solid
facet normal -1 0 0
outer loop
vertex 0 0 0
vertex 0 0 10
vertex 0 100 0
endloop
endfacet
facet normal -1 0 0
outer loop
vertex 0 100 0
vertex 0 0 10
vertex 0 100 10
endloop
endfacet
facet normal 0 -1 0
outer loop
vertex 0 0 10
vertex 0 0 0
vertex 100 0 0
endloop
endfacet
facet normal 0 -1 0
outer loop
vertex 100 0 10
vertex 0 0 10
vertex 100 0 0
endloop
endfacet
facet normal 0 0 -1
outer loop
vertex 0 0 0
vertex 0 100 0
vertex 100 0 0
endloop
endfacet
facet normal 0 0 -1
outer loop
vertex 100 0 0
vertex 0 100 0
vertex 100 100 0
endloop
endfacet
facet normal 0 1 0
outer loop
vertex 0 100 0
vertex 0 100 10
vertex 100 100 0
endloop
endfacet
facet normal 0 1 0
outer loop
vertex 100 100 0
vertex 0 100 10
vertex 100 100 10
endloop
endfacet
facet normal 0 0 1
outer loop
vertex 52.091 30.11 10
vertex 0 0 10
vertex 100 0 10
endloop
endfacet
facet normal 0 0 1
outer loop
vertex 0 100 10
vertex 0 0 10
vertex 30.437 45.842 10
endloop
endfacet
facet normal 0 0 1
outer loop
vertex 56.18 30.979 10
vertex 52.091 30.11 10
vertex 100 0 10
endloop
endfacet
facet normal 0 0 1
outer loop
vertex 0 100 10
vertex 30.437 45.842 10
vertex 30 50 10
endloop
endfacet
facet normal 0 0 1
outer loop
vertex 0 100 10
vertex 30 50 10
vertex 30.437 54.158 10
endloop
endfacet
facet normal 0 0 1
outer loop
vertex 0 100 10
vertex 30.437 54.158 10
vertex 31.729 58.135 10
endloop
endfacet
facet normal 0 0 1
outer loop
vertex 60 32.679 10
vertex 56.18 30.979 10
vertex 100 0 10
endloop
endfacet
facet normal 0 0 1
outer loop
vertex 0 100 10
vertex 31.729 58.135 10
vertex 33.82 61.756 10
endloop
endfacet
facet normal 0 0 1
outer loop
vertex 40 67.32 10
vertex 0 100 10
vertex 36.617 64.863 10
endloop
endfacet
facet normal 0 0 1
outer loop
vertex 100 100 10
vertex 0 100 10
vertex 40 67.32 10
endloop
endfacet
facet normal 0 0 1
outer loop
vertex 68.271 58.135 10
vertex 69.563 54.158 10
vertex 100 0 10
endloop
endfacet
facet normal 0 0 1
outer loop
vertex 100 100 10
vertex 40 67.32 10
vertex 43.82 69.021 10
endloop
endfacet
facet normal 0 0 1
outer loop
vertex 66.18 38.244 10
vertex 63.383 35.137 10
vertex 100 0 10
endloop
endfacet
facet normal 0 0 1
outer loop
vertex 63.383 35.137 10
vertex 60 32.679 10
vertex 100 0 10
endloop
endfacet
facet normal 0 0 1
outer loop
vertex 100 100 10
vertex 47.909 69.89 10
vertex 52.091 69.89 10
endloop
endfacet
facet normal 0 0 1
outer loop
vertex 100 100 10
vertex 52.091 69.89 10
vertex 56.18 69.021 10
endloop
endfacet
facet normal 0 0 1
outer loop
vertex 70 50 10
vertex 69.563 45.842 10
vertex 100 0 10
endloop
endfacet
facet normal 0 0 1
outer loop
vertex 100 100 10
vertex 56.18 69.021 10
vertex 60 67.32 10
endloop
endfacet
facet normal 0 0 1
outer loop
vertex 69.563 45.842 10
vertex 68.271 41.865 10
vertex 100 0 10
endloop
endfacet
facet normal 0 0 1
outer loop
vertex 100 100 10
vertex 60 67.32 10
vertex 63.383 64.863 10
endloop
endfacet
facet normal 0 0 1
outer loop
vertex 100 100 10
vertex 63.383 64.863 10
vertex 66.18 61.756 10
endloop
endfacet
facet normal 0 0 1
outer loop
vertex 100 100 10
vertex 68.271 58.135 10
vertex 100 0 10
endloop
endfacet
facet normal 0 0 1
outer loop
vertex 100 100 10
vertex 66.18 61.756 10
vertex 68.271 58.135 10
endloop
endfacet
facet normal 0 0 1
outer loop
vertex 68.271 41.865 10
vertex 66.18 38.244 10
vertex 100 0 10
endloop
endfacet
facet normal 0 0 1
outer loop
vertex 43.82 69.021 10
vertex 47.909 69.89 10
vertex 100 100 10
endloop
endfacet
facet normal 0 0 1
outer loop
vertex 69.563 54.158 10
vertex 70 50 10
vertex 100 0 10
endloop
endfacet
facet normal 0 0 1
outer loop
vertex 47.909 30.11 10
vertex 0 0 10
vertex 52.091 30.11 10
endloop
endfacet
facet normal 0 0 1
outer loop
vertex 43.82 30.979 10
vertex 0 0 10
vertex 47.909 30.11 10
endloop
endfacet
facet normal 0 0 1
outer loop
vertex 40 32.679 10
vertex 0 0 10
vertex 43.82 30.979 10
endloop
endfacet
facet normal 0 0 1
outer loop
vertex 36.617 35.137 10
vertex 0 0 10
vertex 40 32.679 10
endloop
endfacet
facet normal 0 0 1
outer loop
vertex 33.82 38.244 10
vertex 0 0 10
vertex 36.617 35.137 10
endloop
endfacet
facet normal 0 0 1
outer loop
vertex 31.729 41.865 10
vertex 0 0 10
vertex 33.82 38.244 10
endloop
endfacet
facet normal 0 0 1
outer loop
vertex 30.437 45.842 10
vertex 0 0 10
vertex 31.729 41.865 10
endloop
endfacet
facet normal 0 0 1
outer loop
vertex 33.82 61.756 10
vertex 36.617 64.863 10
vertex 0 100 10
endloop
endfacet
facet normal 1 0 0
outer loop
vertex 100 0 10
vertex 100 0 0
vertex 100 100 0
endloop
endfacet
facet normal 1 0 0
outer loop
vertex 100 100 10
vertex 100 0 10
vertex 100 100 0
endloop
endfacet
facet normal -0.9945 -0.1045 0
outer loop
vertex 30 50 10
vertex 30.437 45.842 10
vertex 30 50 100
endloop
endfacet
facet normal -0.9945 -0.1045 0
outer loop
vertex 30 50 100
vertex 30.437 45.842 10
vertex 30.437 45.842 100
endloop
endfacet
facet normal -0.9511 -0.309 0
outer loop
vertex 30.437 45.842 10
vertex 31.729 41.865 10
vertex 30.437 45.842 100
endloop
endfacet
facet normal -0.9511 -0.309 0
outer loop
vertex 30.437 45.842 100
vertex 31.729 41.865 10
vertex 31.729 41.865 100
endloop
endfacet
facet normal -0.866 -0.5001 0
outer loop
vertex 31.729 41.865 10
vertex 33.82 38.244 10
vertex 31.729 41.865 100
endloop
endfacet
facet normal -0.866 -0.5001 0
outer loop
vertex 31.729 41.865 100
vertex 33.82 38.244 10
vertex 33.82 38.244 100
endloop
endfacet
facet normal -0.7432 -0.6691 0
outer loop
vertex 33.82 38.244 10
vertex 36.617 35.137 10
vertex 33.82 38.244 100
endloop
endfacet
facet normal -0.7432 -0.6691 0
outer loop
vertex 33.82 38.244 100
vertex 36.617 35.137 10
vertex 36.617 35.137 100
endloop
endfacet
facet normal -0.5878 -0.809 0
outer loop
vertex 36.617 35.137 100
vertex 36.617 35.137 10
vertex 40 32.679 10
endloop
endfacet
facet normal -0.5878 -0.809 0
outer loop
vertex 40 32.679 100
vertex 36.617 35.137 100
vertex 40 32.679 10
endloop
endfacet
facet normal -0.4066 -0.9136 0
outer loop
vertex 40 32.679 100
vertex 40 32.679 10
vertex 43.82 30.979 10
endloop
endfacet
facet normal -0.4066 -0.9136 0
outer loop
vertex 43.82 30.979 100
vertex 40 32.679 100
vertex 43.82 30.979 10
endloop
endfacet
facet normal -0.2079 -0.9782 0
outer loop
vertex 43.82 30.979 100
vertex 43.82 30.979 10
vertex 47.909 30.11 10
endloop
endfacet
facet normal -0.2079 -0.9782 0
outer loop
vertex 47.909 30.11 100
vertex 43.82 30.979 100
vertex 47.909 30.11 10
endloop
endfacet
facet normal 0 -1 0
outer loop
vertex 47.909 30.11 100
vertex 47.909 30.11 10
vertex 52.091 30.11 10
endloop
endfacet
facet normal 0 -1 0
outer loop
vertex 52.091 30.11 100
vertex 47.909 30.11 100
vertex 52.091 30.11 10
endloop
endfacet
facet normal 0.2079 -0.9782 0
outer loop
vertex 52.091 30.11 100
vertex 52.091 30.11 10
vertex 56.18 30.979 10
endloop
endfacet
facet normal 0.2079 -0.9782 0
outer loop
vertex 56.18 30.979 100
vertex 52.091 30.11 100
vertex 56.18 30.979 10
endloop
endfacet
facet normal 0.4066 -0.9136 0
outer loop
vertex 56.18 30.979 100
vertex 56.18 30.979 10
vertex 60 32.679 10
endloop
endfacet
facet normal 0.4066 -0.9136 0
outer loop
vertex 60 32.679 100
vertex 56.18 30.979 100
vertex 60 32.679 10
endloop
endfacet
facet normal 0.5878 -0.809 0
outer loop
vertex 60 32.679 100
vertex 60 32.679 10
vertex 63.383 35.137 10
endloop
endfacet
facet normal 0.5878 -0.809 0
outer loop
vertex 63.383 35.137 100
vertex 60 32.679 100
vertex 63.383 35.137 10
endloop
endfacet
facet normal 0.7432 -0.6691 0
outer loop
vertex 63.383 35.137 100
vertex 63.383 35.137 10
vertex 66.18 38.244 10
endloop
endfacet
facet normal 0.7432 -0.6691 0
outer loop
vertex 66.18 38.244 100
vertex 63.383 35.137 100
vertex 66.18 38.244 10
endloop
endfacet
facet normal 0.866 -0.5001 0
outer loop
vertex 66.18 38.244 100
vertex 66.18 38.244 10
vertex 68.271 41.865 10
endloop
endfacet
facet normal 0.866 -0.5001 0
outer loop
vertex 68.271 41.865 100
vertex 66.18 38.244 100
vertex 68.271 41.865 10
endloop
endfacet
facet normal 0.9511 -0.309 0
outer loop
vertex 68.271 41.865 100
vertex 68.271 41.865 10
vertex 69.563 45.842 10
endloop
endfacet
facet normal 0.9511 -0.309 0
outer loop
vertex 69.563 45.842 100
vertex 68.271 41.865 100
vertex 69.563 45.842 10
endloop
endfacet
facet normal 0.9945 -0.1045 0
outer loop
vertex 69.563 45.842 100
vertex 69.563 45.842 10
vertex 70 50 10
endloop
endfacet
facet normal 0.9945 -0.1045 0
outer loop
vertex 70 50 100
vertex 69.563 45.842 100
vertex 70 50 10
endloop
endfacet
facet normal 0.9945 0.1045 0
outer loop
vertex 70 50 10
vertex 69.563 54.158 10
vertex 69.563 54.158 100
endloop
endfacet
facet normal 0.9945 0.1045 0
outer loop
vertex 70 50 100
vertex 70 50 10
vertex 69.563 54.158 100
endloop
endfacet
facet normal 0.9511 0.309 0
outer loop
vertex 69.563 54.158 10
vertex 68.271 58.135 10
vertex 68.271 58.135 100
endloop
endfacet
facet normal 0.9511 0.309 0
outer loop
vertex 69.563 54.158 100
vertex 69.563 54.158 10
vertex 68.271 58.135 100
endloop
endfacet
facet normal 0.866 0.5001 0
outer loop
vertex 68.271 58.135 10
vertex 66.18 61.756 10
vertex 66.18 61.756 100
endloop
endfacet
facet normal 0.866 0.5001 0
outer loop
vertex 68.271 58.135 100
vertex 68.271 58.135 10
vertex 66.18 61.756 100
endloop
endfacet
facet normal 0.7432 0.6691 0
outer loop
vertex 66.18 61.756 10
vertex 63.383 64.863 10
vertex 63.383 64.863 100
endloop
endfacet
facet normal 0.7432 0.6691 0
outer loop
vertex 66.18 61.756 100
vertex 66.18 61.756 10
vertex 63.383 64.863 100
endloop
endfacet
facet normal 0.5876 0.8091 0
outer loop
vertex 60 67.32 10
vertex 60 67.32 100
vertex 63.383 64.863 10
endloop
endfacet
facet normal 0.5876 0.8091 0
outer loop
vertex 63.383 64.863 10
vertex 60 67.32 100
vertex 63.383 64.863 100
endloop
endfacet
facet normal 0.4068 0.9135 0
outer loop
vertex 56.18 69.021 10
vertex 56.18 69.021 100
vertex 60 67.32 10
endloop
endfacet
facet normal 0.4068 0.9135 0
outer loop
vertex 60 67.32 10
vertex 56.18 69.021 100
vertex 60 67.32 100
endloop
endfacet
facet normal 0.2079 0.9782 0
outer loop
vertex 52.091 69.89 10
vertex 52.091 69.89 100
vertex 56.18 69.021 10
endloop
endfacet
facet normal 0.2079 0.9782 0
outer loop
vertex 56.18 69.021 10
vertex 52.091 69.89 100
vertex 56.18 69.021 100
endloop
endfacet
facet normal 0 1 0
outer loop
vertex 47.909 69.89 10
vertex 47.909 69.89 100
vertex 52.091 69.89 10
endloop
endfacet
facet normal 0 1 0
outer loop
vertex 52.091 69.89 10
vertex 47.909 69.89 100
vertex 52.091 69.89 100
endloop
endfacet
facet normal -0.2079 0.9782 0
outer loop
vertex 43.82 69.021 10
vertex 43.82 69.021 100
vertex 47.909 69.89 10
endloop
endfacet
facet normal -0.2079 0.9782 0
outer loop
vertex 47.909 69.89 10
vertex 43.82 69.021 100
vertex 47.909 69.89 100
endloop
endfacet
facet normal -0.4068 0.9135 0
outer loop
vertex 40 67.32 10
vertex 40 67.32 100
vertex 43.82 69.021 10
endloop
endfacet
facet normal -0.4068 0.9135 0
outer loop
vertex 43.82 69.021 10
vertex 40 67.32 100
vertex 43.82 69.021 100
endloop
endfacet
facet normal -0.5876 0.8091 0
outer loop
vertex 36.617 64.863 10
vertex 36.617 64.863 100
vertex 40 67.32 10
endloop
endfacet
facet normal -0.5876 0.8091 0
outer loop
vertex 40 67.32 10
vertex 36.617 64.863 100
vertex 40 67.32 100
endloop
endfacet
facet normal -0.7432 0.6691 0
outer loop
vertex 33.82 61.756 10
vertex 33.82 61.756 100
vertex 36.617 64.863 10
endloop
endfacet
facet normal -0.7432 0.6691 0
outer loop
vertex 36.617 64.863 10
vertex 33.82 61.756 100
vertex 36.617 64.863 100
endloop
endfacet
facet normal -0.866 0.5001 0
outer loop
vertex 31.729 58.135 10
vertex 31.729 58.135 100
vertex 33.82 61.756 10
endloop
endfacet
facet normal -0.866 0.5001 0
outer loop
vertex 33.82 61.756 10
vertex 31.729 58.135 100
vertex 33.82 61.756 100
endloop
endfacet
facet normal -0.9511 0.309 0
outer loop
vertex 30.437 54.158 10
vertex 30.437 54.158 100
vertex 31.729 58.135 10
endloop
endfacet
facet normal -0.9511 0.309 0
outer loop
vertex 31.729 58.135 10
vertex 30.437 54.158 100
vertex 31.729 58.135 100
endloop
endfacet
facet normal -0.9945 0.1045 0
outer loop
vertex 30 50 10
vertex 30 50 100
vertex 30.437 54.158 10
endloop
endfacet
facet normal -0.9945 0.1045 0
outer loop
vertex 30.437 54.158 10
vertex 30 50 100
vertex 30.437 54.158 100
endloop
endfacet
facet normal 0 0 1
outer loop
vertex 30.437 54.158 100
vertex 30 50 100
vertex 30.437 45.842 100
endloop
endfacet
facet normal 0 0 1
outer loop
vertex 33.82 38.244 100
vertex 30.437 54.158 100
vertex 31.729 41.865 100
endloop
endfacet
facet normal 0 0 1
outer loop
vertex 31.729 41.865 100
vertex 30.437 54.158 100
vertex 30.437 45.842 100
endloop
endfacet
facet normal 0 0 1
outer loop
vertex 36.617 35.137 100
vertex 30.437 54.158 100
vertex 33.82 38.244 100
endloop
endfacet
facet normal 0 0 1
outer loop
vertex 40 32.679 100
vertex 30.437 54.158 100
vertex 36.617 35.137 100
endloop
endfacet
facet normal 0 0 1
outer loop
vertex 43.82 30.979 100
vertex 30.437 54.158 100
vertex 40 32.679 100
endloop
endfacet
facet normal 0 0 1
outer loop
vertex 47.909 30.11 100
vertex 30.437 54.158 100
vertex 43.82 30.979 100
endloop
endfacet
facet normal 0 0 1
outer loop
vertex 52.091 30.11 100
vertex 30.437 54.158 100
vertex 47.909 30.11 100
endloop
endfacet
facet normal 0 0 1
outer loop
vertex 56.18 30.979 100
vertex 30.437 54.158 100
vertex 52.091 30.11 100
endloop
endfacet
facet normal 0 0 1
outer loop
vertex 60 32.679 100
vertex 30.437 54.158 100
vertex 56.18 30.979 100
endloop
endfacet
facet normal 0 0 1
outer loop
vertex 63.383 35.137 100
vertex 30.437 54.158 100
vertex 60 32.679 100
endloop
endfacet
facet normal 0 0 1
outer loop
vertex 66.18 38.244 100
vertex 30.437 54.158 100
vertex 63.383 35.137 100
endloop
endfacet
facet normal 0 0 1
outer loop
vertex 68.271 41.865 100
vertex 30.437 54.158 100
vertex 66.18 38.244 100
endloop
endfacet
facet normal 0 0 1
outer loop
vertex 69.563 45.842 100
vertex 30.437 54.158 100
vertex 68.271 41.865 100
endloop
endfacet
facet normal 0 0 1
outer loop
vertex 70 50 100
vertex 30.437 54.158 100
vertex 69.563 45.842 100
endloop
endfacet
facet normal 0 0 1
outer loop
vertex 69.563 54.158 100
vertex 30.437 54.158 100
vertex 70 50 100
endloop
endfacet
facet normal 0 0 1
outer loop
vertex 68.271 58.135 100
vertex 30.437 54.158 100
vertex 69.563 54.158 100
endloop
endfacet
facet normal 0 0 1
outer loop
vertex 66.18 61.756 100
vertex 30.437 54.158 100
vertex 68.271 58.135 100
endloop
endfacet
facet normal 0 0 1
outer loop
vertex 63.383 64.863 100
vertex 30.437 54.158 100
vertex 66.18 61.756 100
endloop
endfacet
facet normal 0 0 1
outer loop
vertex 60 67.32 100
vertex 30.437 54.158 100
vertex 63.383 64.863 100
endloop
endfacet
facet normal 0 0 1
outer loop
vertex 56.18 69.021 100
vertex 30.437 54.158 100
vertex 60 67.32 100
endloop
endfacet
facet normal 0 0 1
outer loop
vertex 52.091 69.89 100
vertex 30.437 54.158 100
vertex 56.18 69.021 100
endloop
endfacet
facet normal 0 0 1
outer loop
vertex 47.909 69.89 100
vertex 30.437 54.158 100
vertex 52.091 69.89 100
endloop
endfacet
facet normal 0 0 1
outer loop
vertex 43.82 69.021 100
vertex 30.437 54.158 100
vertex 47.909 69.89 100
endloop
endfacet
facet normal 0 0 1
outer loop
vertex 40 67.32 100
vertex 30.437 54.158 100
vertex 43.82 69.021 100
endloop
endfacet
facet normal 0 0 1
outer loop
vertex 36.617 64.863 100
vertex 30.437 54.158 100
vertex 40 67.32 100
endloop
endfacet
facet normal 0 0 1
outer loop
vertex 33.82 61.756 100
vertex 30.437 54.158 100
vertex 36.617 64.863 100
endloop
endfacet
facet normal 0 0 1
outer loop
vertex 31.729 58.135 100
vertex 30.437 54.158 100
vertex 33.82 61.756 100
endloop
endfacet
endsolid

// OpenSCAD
cube([100, 100, 10]);
translate([50, 50, 0]) cylinder(100, r=20);
